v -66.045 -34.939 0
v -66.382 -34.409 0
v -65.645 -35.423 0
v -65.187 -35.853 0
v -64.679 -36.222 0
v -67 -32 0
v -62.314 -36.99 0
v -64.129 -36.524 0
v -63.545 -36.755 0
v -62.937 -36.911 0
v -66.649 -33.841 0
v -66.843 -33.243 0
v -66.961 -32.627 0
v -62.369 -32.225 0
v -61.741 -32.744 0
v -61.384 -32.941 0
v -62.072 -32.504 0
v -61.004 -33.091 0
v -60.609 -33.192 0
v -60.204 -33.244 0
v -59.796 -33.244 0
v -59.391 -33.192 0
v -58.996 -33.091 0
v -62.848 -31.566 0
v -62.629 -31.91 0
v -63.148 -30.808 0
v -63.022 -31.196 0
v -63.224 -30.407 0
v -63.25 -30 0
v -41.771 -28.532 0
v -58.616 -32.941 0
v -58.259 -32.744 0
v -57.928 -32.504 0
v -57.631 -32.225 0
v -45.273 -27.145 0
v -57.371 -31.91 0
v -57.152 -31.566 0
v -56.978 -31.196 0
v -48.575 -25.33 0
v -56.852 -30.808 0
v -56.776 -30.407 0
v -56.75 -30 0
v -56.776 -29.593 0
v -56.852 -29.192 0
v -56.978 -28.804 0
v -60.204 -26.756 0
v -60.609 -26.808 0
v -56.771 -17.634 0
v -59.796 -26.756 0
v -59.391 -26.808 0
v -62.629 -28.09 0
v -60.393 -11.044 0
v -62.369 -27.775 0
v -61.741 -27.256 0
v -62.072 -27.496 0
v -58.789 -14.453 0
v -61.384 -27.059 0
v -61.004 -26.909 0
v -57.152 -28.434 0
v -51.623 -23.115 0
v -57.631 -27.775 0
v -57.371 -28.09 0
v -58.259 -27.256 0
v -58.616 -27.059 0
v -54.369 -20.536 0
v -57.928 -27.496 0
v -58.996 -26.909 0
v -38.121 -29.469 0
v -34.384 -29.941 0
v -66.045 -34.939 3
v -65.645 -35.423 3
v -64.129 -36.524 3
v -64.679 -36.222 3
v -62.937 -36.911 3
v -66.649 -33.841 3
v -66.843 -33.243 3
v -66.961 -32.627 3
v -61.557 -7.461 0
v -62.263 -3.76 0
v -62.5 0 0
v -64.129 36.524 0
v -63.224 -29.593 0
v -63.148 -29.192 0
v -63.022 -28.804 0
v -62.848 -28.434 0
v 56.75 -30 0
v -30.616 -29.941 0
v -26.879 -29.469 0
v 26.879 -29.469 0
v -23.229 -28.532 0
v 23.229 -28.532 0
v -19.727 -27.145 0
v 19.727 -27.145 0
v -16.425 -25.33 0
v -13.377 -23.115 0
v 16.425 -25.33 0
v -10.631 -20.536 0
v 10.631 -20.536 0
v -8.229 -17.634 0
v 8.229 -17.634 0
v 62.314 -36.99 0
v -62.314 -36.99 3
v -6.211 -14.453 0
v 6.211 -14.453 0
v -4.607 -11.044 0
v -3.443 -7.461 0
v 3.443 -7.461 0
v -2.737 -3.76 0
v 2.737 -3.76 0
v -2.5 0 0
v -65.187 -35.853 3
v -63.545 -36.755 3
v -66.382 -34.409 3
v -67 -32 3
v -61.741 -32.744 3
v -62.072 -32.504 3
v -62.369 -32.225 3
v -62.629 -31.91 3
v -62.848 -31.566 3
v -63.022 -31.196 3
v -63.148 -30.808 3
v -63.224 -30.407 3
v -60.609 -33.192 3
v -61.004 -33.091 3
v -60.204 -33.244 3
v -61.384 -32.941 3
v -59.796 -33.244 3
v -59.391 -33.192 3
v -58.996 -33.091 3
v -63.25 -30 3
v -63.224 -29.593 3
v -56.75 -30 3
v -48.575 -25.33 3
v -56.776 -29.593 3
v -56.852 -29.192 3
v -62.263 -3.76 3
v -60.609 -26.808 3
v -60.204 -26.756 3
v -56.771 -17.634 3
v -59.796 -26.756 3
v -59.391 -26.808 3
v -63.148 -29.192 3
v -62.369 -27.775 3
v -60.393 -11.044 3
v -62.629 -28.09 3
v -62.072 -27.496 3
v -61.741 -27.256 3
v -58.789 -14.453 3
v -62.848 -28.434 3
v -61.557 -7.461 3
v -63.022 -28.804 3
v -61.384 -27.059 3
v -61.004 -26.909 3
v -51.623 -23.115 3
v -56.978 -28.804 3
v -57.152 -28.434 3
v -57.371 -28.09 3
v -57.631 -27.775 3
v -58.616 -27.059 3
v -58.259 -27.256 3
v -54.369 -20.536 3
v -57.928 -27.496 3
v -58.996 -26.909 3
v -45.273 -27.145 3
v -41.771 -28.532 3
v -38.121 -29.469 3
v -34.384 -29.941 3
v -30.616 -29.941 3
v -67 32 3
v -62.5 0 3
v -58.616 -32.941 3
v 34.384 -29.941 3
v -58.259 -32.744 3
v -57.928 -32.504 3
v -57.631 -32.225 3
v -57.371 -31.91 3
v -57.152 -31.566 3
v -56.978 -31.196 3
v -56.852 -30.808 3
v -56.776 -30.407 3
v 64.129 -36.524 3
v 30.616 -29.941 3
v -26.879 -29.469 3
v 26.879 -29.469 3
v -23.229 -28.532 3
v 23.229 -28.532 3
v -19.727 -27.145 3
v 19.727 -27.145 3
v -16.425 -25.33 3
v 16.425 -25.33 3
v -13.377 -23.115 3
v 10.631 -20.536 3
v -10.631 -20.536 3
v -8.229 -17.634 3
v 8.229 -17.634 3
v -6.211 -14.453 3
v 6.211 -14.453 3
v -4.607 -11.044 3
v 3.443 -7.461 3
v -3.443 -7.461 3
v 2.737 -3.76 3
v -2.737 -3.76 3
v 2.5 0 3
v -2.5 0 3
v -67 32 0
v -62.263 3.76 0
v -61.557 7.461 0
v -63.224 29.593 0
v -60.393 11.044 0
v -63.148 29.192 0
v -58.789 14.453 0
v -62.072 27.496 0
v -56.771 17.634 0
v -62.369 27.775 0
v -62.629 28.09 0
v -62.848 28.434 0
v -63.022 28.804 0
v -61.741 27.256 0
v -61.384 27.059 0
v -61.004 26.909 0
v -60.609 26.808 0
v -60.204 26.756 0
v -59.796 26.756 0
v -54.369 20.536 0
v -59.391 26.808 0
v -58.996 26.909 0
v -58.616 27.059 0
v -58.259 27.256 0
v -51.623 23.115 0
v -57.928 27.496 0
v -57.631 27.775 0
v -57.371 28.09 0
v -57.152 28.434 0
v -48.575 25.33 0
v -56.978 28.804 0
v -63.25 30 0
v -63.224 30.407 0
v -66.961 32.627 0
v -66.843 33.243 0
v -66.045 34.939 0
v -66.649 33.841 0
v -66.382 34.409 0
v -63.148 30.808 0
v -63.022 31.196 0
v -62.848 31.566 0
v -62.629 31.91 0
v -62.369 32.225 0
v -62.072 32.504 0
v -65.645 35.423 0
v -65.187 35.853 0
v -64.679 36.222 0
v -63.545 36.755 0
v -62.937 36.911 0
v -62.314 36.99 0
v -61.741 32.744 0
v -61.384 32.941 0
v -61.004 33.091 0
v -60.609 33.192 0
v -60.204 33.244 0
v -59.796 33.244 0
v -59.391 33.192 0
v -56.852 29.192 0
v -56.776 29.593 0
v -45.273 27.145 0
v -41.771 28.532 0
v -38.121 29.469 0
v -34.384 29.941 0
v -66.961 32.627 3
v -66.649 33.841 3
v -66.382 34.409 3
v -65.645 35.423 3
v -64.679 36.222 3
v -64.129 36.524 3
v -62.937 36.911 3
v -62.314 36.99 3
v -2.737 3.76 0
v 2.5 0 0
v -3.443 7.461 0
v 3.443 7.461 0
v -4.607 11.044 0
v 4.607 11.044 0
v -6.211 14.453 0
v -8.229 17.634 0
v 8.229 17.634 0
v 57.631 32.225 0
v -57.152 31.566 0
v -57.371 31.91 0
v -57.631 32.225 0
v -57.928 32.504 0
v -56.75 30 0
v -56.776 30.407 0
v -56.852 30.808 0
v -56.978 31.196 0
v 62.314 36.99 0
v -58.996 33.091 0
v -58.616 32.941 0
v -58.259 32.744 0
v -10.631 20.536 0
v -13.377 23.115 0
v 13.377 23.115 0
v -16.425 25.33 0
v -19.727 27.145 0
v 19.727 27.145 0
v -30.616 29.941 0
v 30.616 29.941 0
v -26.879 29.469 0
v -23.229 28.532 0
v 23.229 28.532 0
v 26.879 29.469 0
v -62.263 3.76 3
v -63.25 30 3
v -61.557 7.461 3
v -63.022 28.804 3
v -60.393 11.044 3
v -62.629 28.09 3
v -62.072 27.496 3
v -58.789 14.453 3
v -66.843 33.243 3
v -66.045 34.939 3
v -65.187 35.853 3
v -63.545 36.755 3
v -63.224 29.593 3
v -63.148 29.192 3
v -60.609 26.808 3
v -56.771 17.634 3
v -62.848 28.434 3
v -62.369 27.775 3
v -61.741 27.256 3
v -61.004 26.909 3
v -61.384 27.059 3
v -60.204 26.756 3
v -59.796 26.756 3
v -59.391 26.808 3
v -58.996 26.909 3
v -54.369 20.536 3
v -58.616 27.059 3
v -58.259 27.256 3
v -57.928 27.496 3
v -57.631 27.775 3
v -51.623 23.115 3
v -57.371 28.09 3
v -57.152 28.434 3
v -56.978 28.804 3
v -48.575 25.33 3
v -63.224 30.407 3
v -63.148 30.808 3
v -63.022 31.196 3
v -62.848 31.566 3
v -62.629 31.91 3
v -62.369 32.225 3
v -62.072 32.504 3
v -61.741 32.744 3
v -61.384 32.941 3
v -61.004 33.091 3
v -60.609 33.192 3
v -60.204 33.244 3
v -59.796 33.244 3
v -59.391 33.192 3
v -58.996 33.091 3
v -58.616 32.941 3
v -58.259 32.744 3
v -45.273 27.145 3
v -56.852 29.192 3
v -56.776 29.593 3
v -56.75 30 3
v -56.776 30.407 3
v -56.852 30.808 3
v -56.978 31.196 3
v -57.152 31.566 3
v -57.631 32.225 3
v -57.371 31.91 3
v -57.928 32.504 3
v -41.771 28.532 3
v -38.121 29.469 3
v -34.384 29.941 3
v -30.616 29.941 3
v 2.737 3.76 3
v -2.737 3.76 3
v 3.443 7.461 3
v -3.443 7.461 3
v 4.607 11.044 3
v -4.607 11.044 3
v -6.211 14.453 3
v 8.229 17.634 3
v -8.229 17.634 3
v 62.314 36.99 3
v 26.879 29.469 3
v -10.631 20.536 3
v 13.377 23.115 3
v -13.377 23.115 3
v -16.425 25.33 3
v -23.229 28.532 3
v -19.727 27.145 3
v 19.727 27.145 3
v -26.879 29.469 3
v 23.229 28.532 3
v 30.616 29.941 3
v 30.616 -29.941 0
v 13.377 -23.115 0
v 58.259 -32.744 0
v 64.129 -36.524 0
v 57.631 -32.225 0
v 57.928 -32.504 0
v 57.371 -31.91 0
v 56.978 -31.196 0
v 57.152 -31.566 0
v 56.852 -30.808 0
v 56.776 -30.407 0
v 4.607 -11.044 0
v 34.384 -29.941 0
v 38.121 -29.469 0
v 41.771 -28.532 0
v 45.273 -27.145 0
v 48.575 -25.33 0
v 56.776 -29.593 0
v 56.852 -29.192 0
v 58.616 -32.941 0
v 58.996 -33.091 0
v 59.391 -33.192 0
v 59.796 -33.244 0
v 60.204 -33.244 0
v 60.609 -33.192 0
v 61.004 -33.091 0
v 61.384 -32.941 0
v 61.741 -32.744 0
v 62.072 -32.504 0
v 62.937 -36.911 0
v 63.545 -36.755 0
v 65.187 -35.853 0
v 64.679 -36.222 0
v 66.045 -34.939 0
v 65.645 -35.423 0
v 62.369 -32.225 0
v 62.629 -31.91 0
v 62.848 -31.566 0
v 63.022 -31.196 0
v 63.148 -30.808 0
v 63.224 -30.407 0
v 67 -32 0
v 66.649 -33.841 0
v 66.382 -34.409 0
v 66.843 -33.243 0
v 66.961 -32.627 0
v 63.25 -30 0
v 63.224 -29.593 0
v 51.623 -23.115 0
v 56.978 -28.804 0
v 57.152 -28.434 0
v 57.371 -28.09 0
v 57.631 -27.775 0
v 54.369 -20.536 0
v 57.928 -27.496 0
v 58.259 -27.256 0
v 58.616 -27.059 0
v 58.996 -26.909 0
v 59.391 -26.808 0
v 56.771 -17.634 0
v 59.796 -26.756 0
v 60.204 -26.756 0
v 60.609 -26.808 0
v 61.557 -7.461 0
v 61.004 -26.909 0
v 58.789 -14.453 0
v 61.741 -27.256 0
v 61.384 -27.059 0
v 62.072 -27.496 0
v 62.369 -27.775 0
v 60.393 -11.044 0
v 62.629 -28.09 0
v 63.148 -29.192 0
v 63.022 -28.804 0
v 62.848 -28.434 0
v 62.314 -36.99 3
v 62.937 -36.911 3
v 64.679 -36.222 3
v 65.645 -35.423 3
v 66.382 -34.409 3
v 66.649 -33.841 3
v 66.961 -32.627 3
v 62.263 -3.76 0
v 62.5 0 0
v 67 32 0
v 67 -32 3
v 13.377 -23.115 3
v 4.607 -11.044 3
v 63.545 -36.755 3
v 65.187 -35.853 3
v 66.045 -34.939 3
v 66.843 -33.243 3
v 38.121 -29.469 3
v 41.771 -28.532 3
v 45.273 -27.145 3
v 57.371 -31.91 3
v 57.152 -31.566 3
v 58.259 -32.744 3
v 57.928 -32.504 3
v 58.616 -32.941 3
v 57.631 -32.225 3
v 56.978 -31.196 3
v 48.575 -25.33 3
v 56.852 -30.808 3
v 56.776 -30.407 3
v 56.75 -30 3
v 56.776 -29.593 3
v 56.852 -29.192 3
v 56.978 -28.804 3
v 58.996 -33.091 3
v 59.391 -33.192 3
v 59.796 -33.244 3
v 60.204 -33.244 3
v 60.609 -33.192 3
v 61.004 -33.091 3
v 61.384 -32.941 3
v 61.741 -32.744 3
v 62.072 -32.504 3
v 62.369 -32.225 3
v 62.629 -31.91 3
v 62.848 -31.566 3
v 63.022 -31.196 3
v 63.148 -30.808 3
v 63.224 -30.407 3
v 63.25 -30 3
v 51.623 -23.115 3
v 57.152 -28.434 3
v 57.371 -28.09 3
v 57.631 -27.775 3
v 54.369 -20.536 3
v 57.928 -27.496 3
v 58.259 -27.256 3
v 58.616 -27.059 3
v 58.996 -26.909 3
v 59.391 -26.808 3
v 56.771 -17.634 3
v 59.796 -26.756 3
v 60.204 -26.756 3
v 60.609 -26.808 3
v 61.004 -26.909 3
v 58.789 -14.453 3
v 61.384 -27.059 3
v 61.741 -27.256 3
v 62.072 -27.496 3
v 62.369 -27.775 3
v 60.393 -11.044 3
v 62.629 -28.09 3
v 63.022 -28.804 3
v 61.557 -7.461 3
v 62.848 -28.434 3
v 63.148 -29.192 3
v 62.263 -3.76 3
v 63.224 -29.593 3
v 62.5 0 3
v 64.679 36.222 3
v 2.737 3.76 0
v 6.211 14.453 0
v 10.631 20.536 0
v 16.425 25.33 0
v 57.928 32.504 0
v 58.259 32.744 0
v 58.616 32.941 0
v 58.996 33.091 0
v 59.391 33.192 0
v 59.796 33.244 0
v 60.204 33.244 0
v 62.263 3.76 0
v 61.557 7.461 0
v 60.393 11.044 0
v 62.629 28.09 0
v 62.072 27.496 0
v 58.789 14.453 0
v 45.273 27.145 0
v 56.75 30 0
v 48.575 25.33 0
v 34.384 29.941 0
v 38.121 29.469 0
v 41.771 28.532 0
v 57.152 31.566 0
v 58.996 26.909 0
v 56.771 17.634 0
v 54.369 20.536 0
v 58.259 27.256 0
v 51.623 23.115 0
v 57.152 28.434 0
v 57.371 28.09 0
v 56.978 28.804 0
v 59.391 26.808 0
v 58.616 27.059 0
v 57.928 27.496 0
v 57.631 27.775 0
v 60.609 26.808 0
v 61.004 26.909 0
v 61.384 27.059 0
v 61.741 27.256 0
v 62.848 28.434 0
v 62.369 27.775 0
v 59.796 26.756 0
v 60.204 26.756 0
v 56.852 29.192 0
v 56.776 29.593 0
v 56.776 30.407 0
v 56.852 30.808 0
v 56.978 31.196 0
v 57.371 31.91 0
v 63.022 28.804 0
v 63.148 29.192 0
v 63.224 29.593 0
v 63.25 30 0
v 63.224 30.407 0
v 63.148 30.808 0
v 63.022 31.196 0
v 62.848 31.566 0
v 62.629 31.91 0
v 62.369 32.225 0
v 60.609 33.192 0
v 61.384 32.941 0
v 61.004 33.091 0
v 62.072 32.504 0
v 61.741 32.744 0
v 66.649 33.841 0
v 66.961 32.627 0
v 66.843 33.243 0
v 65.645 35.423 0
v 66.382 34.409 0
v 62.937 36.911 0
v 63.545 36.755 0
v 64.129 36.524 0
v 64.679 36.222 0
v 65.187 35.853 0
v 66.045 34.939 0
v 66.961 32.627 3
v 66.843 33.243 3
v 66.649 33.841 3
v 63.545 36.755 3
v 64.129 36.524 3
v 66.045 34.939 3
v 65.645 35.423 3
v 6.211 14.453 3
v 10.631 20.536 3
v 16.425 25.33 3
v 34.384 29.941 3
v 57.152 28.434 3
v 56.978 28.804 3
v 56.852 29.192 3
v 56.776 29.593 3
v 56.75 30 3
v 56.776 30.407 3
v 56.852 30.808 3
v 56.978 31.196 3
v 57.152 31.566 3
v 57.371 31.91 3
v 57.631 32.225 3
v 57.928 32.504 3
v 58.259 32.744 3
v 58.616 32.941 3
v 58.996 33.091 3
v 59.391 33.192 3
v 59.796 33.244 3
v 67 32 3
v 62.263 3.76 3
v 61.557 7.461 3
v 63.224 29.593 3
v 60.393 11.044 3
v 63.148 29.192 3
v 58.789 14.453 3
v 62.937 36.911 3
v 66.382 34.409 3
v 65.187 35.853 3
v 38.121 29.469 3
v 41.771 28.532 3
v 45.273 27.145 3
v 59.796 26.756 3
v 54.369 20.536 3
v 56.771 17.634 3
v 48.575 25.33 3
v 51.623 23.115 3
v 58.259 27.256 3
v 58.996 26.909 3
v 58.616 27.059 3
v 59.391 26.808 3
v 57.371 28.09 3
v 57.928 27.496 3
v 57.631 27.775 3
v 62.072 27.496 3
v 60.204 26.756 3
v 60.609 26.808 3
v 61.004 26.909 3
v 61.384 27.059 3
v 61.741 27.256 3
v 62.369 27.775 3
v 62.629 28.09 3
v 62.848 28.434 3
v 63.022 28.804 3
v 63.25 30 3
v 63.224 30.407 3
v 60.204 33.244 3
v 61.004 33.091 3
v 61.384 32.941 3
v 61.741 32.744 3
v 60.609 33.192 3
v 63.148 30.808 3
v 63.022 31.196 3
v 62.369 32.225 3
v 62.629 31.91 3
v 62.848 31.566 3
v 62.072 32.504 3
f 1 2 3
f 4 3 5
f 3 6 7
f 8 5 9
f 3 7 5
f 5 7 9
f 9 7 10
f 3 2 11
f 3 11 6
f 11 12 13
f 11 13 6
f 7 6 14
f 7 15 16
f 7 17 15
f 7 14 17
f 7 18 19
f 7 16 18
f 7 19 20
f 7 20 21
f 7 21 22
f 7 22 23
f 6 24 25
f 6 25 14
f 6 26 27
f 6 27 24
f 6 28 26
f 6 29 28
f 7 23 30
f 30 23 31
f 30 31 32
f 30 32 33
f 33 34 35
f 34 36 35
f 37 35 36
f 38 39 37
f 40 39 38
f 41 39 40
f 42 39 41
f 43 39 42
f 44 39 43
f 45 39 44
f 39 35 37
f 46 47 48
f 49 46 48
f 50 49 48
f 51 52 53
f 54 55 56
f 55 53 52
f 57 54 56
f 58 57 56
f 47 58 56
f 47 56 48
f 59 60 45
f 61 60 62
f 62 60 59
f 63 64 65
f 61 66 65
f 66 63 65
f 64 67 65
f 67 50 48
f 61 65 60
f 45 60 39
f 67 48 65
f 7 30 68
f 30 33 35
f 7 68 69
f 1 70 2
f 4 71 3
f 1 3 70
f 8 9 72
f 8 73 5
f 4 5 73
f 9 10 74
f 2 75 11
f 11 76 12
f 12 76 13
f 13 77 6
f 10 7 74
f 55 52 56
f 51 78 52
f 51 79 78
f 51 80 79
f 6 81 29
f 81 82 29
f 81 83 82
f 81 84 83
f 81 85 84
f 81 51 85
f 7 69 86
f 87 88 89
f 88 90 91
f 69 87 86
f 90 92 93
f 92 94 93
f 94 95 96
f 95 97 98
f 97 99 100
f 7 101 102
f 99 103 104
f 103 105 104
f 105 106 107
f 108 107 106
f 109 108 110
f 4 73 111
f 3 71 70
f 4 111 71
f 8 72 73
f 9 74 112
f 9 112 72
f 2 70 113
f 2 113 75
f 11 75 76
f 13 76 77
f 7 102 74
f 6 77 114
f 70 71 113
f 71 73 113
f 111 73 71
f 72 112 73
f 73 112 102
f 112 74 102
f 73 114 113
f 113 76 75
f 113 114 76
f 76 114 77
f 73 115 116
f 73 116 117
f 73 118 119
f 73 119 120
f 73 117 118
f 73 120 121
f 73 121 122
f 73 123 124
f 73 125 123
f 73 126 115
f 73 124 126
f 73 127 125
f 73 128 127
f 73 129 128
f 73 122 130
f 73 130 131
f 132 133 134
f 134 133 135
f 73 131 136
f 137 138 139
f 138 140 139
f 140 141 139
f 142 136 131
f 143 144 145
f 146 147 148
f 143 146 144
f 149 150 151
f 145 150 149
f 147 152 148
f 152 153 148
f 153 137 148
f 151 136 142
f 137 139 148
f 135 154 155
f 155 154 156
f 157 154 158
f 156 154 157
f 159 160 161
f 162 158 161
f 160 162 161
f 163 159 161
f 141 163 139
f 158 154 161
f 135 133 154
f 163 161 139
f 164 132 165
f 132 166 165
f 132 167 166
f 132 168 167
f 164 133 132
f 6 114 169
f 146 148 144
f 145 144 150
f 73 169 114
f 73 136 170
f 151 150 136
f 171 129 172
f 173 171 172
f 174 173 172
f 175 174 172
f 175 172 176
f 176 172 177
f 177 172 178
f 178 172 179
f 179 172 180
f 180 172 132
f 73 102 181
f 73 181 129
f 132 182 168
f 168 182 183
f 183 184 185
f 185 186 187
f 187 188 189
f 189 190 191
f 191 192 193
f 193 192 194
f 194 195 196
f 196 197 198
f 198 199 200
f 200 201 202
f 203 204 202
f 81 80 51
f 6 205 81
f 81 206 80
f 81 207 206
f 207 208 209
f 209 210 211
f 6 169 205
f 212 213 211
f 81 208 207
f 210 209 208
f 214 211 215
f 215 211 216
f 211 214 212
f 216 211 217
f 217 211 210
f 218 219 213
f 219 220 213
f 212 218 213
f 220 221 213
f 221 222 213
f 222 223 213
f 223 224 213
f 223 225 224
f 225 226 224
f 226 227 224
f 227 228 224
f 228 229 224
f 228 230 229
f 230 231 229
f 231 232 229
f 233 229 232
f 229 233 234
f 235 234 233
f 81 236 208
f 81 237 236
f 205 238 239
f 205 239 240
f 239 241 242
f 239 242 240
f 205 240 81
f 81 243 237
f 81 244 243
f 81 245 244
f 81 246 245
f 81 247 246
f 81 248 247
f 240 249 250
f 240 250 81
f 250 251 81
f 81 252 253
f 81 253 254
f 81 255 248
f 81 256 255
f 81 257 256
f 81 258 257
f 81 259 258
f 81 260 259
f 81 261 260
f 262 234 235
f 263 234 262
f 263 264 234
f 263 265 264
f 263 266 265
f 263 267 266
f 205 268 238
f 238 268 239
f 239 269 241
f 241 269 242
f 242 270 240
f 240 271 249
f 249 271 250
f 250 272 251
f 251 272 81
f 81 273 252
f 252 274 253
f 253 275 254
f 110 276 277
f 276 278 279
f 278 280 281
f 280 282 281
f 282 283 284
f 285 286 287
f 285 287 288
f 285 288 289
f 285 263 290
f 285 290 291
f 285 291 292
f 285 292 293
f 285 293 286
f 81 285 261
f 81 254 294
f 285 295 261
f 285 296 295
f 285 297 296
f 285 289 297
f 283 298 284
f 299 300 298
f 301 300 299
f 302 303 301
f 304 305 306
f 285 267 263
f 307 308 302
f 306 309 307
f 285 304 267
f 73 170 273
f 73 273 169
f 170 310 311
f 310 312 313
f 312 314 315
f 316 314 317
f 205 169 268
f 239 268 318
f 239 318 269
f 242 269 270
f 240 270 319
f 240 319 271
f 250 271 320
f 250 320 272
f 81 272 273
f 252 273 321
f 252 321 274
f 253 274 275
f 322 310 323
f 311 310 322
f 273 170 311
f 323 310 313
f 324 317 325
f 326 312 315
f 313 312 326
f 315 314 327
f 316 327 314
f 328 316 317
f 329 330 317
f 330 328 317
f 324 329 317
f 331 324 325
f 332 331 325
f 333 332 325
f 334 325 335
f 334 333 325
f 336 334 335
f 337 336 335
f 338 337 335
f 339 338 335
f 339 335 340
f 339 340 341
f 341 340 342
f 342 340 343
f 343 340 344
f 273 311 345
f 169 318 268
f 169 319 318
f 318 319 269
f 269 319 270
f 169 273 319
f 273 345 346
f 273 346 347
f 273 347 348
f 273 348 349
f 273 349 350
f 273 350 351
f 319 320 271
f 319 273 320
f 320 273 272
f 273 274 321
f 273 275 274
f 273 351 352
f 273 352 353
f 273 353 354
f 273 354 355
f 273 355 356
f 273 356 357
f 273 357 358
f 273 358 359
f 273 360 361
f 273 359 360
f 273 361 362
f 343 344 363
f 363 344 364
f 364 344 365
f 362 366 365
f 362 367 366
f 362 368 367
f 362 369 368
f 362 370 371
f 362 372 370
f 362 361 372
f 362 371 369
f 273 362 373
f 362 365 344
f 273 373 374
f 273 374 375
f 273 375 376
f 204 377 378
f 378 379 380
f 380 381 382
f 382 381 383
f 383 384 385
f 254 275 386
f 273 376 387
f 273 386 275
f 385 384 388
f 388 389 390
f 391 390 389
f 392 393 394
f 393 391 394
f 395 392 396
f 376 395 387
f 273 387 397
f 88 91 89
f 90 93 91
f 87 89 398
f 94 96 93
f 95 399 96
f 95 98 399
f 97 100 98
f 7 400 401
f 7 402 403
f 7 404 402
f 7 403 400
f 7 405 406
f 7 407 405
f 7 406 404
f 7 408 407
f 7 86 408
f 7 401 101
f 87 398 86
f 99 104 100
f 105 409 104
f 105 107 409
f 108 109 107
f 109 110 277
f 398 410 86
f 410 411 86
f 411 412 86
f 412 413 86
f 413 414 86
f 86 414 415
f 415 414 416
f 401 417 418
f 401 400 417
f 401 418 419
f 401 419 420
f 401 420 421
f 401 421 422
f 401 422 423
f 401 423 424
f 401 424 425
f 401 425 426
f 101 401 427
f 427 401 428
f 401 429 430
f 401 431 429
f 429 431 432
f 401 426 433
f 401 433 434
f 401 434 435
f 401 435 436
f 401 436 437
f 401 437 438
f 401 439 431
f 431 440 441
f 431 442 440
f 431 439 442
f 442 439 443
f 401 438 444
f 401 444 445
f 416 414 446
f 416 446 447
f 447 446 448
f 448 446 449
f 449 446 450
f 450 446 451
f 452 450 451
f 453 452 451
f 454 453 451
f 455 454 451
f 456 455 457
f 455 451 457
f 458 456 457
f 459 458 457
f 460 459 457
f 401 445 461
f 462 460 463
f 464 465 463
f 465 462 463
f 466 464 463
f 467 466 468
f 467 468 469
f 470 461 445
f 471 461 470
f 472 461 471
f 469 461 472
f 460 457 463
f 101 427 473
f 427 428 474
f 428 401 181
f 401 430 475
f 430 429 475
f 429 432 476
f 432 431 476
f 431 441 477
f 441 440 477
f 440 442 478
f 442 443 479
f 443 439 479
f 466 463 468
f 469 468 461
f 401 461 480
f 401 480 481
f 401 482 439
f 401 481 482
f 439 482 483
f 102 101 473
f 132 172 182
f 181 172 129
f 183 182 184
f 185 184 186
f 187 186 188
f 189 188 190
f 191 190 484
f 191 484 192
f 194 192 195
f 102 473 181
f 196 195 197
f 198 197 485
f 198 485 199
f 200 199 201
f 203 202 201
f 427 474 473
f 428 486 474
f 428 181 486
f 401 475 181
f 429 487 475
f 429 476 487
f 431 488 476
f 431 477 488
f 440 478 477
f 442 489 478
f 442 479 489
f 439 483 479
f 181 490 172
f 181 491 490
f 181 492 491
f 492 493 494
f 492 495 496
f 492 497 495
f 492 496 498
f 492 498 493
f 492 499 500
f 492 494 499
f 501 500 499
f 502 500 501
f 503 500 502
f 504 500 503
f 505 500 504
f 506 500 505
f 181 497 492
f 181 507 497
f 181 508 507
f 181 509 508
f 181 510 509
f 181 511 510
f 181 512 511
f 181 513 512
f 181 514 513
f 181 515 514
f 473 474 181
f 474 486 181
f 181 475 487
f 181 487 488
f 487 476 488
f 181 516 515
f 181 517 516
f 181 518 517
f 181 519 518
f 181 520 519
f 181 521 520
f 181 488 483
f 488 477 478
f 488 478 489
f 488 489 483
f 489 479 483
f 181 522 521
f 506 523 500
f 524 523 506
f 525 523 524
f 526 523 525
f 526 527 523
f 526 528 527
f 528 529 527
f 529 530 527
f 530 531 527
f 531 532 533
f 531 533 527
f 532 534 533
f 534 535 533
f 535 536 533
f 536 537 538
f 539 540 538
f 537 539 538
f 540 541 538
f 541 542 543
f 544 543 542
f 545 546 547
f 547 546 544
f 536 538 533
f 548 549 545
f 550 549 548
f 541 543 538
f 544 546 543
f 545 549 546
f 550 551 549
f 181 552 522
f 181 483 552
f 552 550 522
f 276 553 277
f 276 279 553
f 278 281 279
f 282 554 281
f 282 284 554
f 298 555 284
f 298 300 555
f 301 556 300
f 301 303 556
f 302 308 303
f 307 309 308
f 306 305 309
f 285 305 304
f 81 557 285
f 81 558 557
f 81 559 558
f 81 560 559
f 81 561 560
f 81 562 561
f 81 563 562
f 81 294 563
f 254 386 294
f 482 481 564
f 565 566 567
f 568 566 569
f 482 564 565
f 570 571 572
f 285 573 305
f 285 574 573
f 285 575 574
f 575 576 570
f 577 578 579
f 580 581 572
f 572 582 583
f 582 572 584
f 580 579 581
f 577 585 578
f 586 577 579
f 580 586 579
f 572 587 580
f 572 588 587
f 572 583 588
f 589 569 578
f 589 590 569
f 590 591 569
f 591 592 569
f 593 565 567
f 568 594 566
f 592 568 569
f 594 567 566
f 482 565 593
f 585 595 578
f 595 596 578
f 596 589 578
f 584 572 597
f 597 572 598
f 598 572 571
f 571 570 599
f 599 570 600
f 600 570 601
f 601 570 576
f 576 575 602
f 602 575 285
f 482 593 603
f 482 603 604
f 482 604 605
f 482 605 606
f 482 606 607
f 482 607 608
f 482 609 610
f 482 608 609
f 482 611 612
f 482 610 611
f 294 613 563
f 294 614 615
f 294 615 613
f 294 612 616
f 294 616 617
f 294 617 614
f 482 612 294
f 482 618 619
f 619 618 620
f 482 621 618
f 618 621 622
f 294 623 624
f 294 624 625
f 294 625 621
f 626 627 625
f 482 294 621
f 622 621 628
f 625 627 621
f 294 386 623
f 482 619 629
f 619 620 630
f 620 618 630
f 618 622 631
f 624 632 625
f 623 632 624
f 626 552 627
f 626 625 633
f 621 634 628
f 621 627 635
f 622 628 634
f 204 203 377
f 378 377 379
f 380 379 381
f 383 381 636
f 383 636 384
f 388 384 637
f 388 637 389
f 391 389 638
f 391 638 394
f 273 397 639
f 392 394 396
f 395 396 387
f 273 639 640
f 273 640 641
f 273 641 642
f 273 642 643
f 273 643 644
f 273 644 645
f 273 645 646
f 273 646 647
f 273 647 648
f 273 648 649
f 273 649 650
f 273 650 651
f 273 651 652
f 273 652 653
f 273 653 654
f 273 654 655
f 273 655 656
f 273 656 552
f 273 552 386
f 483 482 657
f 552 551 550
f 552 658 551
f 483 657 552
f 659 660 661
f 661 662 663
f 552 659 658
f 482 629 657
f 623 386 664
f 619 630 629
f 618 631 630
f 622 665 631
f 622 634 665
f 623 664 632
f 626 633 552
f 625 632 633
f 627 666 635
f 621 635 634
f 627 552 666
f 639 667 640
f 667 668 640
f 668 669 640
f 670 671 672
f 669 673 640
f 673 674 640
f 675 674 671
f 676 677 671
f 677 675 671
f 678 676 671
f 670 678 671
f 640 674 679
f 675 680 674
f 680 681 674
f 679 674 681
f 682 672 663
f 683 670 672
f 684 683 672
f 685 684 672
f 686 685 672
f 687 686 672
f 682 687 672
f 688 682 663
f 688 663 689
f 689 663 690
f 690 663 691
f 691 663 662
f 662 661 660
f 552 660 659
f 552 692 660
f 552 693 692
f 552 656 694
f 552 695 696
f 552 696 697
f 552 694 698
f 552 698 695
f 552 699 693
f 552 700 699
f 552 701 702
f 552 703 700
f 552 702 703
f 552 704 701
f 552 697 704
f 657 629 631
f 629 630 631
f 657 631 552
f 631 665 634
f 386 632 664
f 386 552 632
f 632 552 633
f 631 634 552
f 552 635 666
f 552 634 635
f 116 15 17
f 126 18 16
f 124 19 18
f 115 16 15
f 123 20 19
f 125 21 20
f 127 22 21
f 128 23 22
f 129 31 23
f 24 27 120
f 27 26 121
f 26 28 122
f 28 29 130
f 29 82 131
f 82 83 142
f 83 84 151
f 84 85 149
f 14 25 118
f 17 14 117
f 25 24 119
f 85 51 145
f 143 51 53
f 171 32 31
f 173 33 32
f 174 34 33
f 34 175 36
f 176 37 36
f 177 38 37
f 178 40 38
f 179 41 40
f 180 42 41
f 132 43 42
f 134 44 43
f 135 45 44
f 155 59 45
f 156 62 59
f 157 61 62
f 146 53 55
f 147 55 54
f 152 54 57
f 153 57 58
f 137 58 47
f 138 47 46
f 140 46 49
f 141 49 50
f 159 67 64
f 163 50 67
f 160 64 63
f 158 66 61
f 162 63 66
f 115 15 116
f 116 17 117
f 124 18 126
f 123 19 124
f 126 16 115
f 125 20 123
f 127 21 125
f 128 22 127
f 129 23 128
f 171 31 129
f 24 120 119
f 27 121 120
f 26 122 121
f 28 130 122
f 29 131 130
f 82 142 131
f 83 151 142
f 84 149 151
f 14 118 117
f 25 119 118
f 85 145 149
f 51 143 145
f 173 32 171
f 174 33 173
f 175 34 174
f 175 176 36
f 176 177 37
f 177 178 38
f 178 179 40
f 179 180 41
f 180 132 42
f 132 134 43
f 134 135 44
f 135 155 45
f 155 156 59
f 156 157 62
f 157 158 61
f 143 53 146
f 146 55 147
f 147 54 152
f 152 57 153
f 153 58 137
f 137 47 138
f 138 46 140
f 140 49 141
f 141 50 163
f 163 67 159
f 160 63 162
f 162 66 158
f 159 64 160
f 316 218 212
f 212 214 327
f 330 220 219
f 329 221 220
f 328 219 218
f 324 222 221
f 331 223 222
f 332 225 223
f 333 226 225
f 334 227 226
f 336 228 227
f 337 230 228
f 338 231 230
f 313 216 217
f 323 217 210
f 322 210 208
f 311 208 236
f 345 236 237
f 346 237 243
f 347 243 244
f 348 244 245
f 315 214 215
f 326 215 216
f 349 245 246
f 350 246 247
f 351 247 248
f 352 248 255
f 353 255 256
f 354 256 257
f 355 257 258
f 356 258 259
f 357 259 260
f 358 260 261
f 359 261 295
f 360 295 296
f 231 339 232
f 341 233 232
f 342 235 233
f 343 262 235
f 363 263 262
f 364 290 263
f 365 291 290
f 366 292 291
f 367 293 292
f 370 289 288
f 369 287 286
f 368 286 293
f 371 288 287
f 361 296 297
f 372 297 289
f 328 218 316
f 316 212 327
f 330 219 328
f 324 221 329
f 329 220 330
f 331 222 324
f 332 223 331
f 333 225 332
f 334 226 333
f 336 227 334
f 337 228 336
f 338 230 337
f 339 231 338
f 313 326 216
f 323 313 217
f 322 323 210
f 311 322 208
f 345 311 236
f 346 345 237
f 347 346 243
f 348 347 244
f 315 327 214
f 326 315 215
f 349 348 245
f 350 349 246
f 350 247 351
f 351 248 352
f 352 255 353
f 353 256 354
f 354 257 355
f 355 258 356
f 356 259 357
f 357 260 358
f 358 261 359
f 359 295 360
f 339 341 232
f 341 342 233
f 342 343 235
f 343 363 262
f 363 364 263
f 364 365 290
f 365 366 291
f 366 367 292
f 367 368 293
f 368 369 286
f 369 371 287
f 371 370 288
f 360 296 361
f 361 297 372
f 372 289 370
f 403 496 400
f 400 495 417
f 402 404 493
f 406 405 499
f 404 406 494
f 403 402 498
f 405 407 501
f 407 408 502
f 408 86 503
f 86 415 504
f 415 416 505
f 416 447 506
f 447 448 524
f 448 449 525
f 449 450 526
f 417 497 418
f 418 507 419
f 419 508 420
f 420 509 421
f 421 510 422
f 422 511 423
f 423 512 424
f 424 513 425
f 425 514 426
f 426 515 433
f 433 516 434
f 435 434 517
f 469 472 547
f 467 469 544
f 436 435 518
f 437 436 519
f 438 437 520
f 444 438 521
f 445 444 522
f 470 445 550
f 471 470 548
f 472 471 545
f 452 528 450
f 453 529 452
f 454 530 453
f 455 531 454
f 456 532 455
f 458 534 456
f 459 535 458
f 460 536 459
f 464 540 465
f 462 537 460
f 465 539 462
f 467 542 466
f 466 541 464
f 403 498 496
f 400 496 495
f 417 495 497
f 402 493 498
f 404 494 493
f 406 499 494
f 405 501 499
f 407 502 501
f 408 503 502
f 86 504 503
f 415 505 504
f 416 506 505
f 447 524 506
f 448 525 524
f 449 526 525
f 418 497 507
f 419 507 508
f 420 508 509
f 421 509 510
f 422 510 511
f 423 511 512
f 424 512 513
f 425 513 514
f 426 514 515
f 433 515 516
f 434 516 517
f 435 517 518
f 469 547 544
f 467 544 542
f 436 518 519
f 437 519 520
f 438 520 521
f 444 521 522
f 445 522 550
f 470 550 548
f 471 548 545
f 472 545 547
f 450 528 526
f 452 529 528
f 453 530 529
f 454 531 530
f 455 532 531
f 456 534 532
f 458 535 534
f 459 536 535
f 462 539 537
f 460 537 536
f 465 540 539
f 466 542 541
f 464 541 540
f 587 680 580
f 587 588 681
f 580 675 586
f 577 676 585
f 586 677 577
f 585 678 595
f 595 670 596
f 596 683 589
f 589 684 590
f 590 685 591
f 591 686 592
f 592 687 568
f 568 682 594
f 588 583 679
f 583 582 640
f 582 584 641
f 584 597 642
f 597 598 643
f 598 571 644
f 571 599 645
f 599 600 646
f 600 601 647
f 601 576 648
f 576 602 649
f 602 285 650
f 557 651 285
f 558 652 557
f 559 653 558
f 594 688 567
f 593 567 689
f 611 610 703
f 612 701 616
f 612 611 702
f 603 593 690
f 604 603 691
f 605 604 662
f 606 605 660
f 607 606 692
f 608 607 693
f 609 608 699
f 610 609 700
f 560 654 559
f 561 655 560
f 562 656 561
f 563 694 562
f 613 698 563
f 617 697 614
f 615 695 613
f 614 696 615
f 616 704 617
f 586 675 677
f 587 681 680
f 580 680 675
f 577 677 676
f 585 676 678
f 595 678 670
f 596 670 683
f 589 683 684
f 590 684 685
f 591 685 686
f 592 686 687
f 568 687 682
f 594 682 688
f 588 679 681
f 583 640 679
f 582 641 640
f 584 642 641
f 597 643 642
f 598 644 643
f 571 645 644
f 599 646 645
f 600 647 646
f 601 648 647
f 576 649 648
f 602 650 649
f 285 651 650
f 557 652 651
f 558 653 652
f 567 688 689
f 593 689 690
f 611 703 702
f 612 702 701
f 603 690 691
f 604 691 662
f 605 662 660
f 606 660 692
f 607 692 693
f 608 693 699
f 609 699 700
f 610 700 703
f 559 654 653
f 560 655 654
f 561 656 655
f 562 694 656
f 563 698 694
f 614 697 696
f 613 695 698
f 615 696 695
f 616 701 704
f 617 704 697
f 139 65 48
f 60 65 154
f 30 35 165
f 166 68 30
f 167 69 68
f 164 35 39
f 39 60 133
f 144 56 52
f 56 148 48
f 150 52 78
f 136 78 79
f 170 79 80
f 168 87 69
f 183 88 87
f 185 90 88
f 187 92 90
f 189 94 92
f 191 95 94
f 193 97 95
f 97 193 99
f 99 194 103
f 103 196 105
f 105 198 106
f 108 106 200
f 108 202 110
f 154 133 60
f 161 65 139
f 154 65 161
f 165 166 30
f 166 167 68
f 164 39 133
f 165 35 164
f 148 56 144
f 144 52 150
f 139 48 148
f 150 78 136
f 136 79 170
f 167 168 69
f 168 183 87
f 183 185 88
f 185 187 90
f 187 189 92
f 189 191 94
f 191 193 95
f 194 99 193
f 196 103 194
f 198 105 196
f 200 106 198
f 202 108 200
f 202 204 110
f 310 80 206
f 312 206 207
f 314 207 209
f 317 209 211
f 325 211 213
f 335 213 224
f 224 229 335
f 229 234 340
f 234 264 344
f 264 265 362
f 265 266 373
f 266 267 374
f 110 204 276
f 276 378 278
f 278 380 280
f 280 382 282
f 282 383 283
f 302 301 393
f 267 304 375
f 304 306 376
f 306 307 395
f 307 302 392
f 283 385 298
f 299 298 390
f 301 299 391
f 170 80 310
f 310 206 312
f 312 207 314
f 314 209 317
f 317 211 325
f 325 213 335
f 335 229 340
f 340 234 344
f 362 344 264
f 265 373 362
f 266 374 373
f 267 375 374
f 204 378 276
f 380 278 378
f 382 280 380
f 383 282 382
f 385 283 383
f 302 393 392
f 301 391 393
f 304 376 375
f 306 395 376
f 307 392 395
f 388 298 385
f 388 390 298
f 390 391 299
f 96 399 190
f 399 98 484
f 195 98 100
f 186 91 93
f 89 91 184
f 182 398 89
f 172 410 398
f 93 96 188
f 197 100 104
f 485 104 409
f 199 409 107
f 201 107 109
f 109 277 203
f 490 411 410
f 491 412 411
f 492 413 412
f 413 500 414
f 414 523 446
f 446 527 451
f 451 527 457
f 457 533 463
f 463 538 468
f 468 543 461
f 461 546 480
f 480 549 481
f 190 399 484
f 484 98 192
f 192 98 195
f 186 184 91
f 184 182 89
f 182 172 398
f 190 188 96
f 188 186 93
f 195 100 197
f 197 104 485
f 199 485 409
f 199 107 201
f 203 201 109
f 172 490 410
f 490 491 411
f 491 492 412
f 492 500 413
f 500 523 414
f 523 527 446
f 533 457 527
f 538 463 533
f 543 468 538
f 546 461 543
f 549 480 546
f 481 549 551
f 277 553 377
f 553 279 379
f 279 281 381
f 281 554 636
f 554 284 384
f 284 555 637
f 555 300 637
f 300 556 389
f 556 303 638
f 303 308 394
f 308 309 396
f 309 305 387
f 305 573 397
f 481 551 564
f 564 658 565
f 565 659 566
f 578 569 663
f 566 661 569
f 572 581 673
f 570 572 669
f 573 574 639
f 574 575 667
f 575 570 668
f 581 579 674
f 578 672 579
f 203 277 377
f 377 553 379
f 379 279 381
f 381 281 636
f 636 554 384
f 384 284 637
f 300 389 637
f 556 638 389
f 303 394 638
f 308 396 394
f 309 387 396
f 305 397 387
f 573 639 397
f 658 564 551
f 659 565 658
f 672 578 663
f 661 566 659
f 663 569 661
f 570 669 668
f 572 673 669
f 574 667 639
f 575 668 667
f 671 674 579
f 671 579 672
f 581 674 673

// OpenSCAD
$fn = 50;

difference() {
	union() {
		hull() {
			translate(v = [-62.0, 32.0, 0]) {
				cylinder(h = 3, r = 5);
			}
			translate(v = [62.0, 32.0, 0]) {
				cylinder(h = 3, r = 5);
			}
			translate(v = [-62.0, -32.0, 0]) {
				cylinder(h = 3, r = 5);
			}
			translate(v = [62.0, -32.0, 0]) {
				cylinder(h = 3, r = 5);
			}
		}
	}
	union() {
		translate(v = [-60.0, -30.0, -100.0]) {
			cylinder(h = 200, r = 3.25);
		}
		translate(v = [-60.0, 30.0, -100.0]) {
			cylinder(h = 200, r = 3.25);
		}
		translate(v = [60.0, -30.0, -100.0]) {
			cylinder(h = 200, r = 3.25);
		}
		translate(v = [60.0, 30.0, -100.0]) {
			cylinder(h = 200, r = 3.25);
		}
		translate(v = [-60.0, -30.0, -100.0]) {
			cylinder(h = 200, r = 1.8);
		}
		translate(v = [-60.0, 30.0, -100.0]) {
			cylinder(h = 200, r = 1.8);
		}
		translate(v = [60.0, -30.0, -100.0]) {
			cylinder(h = 200, r = 1.8);
		}
		translate(v = [60.0, 30.0, -100.0]) {
			cylinder(h = 200, r = 1.8);
		}
		translate(v = [-32.5, 0, 0.0]) {
			cylinder(h = 3, r = 30.0);
		}
		translate(v = [32.5, 0, 0.0]) {
			cylinder(h = 3, r = 30.0);
		}
	}
}
